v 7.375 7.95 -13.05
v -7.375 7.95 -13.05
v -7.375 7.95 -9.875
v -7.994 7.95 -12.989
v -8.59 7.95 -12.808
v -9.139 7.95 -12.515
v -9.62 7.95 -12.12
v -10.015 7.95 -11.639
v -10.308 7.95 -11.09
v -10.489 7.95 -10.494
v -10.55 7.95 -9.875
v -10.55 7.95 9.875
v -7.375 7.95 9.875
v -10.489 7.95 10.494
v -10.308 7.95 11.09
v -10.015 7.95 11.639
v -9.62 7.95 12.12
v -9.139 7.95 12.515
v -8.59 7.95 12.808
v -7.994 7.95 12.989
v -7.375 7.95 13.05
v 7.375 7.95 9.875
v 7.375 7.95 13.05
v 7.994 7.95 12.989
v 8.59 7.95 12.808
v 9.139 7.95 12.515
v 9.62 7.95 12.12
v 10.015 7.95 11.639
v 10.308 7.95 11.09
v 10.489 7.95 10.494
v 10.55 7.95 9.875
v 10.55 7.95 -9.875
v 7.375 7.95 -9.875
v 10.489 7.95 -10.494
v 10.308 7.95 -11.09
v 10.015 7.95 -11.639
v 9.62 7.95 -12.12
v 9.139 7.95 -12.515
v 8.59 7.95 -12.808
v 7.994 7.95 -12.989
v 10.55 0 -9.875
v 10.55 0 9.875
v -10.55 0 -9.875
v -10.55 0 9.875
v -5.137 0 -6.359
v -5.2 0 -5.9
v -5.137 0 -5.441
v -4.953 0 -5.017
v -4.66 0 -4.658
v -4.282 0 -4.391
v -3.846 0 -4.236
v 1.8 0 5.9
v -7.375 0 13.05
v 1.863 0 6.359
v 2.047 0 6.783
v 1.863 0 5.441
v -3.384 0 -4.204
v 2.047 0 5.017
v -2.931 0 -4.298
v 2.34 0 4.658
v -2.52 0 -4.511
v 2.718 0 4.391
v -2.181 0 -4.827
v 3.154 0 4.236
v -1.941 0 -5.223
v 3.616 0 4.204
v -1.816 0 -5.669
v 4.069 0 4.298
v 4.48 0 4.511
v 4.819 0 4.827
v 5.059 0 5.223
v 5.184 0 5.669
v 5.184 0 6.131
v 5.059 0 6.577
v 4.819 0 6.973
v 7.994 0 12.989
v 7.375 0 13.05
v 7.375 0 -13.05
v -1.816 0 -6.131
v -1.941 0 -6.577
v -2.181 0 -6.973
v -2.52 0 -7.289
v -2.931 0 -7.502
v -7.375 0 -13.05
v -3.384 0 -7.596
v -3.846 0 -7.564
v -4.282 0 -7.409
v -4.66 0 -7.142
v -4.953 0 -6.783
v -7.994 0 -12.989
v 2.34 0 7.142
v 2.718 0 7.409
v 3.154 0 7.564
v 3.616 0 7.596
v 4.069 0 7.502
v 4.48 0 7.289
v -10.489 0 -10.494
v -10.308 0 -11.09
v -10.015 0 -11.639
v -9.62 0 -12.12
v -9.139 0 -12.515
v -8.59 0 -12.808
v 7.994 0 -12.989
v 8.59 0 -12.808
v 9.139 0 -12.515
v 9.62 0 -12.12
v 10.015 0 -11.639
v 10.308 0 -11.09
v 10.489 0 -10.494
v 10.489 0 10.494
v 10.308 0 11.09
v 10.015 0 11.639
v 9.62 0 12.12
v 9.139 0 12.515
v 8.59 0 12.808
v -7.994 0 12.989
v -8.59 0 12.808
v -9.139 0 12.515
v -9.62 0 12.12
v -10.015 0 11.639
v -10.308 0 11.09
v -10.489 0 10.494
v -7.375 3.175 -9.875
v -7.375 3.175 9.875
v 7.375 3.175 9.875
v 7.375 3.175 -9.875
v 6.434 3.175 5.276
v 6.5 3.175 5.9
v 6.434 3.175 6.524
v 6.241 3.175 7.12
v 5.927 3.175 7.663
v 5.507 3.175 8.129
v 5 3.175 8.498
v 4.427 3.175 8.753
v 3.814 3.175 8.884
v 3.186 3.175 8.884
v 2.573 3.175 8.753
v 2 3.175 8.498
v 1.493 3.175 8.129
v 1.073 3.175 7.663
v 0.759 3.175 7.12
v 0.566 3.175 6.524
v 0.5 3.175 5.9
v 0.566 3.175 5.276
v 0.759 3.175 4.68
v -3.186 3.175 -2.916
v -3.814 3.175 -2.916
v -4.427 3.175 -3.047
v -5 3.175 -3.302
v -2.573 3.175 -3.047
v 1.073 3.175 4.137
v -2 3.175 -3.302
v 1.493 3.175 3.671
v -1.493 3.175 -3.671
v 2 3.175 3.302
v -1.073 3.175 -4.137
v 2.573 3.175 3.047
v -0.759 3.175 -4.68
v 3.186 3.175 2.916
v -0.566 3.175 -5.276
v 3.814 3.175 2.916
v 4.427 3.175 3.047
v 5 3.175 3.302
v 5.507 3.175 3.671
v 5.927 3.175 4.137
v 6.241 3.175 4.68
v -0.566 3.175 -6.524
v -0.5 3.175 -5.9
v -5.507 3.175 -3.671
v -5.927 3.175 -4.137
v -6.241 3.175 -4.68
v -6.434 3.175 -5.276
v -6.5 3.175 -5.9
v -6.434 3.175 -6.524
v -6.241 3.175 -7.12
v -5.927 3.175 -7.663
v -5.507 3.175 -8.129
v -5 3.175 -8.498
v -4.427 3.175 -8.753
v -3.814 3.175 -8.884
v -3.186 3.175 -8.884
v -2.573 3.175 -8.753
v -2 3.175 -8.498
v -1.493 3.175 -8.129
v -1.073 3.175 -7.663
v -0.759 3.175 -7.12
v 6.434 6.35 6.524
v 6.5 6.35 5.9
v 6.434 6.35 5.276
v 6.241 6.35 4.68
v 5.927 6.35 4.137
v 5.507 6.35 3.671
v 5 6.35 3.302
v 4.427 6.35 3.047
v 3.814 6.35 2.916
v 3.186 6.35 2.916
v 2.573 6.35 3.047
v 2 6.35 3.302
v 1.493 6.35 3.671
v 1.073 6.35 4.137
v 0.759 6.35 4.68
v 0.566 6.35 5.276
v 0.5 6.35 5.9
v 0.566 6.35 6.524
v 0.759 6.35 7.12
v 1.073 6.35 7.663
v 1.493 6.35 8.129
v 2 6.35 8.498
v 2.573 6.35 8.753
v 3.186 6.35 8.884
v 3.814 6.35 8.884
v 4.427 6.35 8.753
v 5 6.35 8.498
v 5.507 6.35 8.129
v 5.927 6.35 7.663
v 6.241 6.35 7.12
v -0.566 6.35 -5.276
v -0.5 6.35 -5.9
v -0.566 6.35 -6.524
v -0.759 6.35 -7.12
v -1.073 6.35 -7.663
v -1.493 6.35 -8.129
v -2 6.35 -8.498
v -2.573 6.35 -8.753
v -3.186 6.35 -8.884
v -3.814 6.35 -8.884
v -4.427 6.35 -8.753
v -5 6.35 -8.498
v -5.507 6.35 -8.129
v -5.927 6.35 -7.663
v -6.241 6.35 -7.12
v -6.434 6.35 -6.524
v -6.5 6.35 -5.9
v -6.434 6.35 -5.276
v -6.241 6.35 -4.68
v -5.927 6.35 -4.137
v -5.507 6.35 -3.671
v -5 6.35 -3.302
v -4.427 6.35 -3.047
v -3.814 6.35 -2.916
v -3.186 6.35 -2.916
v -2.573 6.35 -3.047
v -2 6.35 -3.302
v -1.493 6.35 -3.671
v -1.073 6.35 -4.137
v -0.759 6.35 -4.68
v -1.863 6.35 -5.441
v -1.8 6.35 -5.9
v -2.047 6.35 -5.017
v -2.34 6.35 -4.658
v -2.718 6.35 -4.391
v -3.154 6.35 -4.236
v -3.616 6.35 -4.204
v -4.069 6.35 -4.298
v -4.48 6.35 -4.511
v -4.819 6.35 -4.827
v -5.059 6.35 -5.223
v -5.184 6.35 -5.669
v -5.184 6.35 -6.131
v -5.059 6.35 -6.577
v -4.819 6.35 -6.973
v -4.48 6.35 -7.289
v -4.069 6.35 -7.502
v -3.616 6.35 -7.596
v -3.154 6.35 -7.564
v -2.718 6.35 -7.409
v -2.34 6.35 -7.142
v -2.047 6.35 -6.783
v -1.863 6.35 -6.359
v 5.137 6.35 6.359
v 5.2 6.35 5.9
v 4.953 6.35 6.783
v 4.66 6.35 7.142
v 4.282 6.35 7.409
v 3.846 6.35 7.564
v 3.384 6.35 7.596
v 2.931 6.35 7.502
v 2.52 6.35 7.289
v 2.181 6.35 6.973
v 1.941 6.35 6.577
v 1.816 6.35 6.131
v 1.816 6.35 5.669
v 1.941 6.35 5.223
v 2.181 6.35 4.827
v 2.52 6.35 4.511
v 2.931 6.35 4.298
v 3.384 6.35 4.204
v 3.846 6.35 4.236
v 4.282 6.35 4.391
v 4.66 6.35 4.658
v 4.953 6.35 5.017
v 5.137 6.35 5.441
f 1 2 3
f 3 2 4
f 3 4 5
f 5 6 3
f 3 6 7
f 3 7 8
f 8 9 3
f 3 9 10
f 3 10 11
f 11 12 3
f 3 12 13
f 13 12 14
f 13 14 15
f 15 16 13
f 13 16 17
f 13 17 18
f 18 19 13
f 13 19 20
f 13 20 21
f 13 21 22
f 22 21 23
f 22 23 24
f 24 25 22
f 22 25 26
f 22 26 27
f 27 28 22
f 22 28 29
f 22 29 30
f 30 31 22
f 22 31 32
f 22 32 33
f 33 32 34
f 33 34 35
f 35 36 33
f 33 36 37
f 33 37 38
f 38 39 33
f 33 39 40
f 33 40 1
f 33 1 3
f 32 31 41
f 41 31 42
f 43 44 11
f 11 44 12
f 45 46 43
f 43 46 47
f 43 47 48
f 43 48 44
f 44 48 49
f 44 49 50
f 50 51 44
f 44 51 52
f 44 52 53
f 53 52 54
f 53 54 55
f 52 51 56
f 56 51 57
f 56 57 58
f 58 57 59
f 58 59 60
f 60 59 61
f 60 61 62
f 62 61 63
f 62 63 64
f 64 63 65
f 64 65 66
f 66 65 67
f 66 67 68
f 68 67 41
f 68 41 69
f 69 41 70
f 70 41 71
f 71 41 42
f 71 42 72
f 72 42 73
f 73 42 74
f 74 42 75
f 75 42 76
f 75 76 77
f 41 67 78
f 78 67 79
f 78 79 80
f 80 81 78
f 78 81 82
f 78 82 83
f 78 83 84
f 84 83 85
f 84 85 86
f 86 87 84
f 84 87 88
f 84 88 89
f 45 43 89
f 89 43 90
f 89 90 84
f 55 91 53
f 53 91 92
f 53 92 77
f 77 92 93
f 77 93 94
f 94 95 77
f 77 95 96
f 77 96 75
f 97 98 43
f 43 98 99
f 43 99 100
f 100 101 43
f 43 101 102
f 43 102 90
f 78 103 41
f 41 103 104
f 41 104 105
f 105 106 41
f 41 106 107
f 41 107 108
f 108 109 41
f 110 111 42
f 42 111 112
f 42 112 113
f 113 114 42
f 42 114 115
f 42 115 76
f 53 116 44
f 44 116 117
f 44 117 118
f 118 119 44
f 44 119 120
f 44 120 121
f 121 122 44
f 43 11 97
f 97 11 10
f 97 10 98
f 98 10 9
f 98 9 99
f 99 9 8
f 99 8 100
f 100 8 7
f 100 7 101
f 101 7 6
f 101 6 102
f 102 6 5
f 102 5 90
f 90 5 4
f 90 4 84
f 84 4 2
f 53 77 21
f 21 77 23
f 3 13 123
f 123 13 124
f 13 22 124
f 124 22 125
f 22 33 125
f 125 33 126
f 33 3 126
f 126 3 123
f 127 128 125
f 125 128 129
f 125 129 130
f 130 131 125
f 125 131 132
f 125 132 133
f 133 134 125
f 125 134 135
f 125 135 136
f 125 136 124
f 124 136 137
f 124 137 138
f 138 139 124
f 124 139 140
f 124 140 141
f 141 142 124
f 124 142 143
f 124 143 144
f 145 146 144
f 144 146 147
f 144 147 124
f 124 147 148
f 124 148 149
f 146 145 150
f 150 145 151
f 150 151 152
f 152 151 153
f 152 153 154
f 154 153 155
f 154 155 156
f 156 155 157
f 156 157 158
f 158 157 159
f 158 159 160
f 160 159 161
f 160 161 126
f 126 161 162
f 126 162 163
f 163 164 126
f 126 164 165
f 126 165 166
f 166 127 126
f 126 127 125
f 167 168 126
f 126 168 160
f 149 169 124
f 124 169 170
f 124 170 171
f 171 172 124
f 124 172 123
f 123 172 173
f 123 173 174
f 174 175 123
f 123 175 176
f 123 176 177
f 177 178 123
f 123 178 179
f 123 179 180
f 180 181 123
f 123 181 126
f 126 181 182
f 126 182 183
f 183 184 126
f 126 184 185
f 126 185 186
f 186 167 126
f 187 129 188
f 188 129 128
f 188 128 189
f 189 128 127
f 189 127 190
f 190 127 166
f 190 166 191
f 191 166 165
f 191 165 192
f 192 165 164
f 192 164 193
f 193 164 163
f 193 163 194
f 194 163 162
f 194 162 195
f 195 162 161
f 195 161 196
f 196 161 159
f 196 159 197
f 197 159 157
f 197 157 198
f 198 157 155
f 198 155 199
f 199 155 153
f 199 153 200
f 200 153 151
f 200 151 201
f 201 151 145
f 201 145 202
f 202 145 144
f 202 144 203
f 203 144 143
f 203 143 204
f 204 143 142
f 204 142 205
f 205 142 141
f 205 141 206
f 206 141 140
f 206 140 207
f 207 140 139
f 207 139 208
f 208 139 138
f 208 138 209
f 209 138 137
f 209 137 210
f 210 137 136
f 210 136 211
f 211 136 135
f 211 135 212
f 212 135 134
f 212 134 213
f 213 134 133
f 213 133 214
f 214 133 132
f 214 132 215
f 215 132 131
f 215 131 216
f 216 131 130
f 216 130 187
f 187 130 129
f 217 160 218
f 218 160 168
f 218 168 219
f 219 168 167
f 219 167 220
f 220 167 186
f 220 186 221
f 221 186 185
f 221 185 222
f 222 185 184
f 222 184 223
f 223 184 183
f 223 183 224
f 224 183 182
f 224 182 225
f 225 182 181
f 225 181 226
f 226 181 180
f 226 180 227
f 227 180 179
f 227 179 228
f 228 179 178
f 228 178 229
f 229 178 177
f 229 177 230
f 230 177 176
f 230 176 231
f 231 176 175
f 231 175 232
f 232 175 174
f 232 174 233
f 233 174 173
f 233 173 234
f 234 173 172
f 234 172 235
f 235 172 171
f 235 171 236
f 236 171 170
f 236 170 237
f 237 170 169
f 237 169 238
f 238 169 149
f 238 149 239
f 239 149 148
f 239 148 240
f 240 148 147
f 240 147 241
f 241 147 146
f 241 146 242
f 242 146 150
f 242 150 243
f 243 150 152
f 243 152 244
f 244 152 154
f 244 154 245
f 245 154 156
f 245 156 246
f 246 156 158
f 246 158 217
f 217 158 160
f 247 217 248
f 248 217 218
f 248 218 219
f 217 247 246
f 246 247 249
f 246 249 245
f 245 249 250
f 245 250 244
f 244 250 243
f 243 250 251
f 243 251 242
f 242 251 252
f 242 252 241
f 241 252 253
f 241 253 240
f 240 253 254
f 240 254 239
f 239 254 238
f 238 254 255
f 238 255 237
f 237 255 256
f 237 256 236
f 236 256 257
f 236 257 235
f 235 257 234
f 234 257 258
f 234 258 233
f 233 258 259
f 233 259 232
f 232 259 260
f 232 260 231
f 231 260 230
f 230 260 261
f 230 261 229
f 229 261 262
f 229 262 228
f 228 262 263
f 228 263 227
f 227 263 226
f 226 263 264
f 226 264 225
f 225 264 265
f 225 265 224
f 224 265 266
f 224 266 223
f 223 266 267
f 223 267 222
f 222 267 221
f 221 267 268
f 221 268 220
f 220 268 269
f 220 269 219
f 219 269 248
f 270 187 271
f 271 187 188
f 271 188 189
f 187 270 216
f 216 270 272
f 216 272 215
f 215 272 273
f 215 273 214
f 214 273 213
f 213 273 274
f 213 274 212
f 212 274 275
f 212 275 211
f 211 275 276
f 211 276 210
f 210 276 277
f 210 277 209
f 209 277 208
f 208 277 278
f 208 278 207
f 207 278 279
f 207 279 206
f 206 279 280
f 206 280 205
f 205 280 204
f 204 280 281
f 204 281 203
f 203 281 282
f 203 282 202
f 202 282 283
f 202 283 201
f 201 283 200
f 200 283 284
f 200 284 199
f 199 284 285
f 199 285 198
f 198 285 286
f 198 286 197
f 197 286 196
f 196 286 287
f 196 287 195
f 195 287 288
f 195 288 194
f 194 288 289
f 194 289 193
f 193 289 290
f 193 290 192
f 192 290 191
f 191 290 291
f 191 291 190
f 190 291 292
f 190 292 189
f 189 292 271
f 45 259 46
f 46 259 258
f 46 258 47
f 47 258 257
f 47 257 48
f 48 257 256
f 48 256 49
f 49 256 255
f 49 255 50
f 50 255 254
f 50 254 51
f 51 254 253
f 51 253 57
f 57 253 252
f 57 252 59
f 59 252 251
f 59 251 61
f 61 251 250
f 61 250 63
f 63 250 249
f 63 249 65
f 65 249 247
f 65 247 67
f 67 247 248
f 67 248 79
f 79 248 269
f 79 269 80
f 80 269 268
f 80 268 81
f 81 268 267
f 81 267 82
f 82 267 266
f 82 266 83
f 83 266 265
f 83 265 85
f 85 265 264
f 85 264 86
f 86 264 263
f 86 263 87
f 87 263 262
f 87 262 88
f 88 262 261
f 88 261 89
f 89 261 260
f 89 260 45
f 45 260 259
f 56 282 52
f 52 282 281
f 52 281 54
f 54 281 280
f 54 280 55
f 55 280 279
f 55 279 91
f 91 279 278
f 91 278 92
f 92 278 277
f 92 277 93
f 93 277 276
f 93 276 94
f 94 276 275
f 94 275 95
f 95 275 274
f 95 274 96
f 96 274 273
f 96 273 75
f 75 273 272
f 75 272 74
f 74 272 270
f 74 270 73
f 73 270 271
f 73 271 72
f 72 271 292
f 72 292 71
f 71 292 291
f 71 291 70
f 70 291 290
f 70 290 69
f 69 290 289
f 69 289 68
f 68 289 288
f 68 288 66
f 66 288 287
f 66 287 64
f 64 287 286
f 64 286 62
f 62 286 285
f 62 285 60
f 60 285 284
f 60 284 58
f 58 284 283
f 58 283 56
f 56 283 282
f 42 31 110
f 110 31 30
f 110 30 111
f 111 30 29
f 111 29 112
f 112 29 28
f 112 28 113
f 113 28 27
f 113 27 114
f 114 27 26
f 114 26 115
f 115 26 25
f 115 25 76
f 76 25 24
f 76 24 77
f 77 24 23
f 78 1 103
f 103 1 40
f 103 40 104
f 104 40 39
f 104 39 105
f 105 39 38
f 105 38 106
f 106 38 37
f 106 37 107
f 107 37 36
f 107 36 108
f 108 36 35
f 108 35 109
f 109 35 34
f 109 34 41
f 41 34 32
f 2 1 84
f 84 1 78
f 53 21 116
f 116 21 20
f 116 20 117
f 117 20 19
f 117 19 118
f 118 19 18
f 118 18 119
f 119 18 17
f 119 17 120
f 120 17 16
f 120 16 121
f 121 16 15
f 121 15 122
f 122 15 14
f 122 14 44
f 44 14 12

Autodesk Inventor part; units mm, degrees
ref_plane "YZ Plane" through (0, 0, 0) normal (1, 0, 0) x (0, 1, 0)
ref_plane "XZ Plane" through (0, 0, 0) normal (0, 1, 0) x (-1, 0, 0)
ref_plane "XY Plane" through (0, 0, 0) normal (0, 0, 1) x (1, 0, 0)
sketch "Sketch1" plane through (0, 0, 0) normal (0, 1, 0) x (-1, 0, 0)
  line L0 (-10.55, -13.05) -> (10.55, -13.05)
  line L1 (10.55, -13.05) -> (10.55, 13.05)
  line L2 (10.55, 13.05) -> (-10.55, 13.05)
  line L3 (-10.55, 13.05) -> (-10.55, -13.05)
  line L4 (-10.55, -13.05) -> (10.55, 13.05) construction
  line L5 (10.55, -13.05) -> (-10.55, 13.05) construction
  point P0 (0, 0)
  dimension "d0" = 26.1
  dimension "d1" = 21.1
extrude "Extrusion1" add sketch "Sketch1" along normal blind 7.95
sketch "Sketch2" plane through (0, 7.95, 0) normal (0, 1, 0) x (1, 0, 0)
  line L0 (7.375, -9.875) -> (-7.375, -9.875)
  line L1 (-7.375, -9.875) -> (-7.375, 9.875)
  line L2 (-7.375, 9.875) -> (7.375, 9.875)
  line L3 (7.375, 9.875) -> (7.375, -9.875)
  line L4 (7.375, -9.875) -> (-7.375, 9.875) construction
  line L5 (-7.375, -9.875) -> (7.375, 9.875) construction
  point P0 (0, 0)
  dimension "d4" = 19.75
  dimension "d5" = 14.75
extrude "Extrusion2" cut sketch "Sketch2" against normal blind 4.775
sketch "Sketch3" plane through (0, 3.175, 0) normal (0, 1, 0) x (1, 0, 0)
  circle A0 centre (-3.5, 5.9) radius 3
  circle A1 centre (3.5, -5.9) radius 3
  point P0 (0, 0)
  dimension "d8" = 11.8
  dimension "d9" = 7
  dimension "d10" = 5.9
  dimension "d11" = 3.5
  dimension "d12" = 6
  dimension "d13" = 6
extrude "Extrusion3" add sketch "Sketch3" along normal blind 3.175
sketch "Sketch4" plane through (3.5, 6.35, 5.9) normal (0, 1, 0) x (1, 0, 0)
  circle A0 centre (0, 0) radius 1.7
  circle A1 centre (-7, 11.8) radius 3 projected
  circle A2 centre (-7, 11.8) radius 1.7
  point P0 (-3.5, 5.9)
  dimension "d16" = 3.4
  dimension "d17" = 3.4
extrude "Extrusion4" cut sketch "Sketch4" against normal through all contours A0 | A2
fillet "Fillet1" radius 3.175 4 edges at (10.55, 3.975, 13.05) (10.55, 3.975, -13.05) (-10.55, 3.975, 13.05) (-10.55, 3.975, -13.05)
equation "\"d10\" = 0.5 * d8"
equation "\"d11\" = 0.5 * d9"
equation "\"d13\" = d12"
equation "\"d16\" = m3_clearance"
equation "\"d17\" = m3_clearance"
equation "\"m3_heat_set_insert\" = 4"
equation "\"m3_clearance\" = 3.4"
equation "\"m3_heat_set_depth\" = 7"
equation "\"robot_diameter\" = 354"
equation "\"hardboard_thickness\" = 5"
equation "\"motor_centerline_height\" = 13"
properties part number "environmental_sensor_case"
